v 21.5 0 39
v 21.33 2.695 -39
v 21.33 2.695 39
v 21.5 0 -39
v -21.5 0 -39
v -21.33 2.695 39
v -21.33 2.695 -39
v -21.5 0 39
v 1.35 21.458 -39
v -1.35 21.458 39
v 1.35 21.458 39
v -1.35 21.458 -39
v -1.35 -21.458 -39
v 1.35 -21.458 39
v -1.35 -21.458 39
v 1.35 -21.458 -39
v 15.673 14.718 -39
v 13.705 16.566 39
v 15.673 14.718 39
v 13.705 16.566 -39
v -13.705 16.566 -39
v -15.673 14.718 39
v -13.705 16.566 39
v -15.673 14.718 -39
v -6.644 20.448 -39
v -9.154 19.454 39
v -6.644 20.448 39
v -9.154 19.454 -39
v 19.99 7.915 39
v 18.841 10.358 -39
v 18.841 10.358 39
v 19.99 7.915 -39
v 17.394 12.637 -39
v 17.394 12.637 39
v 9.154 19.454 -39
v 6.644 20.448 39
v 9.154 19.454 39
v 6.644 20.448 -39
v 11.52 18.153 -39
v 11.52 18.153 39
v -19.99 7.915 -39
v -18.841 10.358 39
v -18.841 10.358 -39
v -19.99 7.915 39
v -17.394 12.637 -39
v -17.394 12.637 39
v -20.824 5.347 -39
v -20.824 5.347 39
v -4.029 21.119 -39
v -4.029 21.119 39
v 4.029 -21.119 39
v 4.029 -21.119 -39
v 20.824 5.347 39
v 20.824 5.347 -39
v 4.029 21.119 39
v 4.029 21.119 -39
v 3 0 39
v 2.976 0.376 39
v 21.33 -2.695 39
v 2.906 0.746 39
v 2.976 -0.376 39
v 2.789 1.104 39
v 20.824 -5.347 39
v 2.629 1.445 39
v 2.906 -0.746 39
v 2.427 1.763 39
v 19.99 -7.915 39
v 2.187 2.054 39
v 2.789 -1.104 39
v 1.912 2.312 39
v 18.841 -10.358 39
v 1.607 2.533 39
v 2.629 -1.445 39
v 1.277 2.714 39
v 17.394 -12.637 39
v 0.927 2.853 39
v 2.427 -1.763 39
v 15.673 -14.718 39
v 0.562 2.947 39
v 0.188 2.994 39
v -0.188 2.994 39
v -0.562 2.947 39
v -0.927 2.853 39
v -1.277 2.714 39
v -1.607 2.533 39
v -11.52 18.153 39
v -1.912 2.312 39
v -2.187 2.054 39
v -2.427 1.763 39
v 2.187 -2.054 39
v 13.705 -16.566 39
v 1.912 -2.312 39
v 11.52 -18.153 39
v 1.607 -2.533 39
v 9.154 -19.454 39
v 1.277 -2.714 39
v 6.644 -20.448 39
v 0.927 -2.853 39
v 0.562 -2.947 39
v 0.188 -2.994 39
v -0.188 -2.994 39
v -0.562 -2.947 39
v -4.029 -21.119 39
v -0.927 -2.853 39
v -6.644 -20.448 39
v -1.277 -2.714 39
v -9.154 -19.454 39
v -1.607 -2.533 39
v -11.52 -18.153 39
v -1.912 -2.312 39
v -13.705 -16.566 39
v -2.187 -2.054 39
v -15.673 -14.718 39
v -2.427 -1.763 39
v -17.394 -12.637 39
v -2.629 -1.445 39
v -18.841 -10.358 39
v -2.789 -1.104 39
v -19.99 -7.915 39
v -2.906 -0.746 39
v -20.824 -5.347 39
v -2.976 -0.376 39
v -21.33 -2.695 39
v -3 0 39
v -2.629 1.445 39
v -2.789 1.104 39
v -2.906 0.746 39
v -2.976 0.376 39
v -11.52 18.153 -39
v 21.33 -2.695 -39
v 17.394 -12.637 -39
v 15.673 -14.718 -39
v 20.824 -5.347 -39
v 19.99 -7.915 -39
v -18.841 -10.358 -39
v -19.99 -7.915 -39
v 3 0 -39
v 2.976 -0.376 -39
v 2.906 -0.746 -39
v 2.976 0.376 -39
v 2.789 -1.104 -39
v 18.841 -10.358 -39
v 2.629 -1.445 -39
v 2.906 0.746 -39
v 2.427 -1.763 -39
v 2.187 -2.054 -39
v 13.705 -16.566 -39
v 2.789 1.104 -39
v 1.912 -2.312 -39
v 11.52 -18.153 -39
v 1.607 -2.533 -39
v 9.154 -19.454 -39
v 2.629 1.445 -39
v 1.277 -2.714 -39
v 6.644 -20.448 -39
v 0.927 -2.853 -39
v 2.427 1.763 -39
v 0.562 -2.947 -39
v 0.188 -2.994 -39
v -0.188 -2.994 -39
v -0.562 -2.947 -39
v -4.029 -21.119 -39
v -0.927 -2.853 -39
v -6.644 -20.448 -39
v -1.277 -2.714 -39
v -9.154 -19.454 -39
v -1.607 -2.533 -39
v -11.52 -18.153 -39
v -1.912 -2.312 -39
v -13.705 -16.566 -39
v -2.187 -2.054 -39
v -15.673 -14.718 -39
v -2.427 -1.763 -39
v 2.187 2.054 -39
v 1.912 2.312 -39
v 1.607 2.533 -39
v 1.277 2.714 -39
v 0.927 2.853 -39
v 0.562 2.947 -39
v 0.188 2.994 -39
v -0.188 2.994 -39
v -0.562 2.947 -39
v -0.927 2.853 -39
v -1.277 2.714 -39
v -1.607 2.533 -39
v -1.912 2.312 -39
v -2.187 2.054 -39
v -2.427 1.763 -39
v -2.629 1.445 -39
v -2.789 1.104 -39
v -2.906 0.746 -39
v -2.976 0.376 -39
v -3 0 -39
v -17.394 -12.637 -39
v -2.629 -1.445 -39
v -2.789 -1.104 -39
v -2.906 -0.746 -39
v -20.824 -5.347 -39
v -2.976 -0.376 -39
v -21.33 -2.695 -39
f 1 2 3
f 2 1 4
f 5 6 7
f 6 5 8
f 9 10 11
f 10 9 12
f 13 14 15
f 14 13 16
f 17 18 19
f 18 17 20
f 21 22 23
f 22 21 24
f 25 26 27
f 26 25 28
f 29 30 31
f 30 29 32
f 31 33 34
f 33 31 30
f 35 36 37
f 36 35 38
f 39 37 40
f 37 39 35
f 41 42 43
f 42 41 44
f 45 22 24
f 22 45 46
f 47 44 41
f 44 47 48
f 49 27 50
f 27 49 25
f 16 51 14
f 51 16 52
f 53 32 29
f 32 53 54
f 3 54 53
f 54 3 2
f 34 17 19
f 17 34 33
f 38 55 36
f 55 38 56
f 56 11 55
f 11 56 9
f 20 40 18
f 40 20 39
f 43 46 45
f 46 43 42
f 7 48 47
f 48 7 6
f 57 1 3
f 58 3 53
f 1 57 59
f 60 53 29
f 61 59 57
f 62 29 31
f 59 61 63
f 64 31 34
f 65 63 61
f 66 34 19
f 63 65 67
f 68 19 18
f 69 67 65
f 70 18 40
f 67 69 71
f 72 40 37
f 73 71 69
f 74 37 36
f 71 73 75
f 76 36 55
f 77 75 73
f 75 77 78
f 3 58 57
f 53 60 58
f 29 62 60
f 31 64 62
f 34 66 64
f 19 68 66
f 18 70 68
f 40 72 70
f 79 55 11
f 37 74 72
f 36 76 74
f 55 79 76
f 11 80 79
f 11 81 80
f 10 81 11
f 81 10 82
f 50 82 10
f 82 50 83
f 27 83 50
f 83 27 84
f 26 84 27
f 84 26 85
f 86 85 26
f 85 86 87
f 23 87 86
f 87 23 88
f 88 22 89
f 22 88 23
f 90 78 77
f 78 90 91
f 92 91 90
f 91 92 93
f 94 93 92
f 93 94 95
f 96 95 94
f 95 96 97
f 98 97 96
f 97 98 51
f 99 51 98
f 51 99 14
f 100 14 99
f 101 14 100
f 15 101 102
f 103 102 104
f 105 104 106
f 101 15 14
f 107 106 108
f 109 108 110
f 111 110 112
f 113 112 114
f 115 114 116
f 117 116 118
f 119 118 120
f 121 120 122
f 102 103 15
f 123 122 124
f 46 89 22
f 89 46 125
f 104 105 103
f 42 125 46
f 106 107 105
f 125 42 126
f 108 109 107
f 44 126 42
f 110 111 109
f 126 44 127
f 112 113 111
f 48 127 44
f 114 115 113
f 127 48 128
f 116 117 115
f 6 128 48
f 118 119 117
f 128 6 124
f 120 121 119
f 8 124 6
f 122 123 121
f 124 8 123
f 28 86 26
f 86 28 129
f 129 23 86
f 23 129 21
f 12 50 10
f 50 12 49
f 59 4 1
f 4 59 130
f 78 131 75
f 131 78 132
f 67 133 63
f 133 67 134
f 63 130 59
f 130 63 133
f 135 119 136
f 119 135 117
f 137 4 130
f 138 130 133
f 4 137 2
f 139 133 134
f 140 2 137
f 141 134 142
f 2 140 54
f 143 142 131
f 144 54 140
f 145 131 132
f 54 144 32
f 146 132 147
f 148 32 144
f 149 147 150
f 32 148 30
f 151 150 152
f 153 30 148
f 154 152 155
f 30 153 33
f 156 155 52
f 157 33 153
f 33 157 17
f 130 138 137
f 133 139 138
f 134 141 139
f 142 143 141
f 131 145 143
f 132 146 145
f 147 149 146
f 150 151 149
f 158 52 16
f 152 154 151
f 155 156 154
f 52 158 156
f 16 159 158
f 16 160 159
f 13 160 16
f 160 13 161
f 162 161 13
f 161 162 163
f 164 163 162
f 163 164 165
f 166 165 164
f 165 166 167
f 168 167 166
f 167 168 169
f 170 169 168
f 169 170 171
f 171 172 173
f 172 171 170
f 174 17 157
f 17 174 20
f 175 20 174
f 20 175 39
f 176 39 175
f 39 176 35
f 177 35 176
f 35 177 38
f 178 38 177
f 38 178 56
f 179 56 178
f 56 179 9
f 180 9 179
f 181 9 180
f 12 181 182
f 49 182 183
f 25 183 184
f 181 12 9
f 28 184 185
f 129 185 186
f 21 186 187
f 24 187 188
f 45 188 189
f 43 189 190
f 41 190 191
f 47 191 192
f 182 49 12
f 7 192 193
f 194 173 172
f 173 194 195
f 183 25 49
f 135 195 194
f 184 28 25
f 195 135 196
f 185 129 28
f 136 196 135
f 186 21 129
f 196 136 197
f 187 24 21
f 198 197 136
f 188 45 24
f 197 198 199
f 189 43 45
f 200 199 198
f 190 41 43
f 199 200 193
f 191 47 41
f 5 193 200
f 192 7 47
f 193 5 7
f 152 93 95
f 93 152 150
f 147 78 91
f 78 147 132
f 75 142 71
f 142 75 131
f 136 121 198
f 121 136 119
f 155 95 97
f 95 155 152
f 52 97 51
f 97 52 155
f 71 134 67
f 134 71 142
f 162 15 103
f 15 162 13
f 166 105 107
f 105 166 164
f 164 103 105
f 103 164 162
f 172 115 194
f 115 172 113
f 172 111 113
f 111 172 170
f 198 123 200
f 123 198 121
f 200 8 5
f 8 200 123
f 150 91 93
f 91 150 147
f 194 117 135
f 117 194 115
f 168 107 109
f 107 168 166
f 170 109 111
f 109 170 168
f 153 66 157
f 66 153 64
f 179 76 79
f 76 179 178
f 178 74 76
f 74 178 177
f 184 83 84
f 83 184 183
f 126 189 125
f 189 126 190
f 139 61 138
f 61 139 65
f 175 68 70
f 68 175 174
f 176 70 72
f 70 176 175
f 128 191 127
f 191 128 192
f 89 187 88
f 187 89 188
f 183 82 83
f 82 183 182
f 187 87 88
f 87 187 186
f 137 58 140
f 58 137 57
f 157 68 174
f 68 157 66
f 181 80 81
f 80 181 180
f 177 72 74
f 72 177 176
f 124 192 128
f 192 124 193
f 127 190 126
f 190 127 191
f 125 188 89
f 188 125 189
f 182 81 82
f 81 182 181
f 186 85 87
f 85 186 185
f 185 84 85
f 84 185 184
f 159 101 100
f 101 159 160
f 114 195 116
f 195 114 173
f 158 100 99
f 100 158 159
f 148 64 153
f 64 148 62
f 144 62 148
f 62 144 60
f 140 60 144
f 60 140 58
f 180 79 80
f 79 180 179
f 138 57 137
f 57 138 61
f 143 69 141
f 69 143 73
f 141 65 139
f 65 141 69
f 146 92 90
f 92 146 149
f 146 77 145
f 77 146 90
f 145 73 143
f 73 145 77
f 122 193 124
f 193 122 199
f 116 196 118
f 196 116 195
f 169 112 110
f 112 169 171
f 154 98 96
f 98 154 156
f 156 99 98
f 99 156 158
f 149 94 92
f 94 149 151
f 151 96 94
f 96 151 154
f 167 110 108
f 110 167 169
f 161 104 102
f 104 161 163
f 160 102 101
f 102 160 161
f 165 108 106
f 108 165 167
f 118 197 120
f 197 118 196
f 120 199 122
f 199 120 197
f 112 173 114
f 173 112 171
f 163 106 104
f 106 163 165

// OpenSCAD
$fn = 50;


difference() {
	union() {
		translate(v = [0, 0, -39.0000000000]) {
			cylinder(h = 78, r = 21.5000000000);
		}
	}
	union() {
		translate(v = [0, 0, -100.0000000000]) {
			cylinder(h = 200, r = 3);
		}
	}
}
